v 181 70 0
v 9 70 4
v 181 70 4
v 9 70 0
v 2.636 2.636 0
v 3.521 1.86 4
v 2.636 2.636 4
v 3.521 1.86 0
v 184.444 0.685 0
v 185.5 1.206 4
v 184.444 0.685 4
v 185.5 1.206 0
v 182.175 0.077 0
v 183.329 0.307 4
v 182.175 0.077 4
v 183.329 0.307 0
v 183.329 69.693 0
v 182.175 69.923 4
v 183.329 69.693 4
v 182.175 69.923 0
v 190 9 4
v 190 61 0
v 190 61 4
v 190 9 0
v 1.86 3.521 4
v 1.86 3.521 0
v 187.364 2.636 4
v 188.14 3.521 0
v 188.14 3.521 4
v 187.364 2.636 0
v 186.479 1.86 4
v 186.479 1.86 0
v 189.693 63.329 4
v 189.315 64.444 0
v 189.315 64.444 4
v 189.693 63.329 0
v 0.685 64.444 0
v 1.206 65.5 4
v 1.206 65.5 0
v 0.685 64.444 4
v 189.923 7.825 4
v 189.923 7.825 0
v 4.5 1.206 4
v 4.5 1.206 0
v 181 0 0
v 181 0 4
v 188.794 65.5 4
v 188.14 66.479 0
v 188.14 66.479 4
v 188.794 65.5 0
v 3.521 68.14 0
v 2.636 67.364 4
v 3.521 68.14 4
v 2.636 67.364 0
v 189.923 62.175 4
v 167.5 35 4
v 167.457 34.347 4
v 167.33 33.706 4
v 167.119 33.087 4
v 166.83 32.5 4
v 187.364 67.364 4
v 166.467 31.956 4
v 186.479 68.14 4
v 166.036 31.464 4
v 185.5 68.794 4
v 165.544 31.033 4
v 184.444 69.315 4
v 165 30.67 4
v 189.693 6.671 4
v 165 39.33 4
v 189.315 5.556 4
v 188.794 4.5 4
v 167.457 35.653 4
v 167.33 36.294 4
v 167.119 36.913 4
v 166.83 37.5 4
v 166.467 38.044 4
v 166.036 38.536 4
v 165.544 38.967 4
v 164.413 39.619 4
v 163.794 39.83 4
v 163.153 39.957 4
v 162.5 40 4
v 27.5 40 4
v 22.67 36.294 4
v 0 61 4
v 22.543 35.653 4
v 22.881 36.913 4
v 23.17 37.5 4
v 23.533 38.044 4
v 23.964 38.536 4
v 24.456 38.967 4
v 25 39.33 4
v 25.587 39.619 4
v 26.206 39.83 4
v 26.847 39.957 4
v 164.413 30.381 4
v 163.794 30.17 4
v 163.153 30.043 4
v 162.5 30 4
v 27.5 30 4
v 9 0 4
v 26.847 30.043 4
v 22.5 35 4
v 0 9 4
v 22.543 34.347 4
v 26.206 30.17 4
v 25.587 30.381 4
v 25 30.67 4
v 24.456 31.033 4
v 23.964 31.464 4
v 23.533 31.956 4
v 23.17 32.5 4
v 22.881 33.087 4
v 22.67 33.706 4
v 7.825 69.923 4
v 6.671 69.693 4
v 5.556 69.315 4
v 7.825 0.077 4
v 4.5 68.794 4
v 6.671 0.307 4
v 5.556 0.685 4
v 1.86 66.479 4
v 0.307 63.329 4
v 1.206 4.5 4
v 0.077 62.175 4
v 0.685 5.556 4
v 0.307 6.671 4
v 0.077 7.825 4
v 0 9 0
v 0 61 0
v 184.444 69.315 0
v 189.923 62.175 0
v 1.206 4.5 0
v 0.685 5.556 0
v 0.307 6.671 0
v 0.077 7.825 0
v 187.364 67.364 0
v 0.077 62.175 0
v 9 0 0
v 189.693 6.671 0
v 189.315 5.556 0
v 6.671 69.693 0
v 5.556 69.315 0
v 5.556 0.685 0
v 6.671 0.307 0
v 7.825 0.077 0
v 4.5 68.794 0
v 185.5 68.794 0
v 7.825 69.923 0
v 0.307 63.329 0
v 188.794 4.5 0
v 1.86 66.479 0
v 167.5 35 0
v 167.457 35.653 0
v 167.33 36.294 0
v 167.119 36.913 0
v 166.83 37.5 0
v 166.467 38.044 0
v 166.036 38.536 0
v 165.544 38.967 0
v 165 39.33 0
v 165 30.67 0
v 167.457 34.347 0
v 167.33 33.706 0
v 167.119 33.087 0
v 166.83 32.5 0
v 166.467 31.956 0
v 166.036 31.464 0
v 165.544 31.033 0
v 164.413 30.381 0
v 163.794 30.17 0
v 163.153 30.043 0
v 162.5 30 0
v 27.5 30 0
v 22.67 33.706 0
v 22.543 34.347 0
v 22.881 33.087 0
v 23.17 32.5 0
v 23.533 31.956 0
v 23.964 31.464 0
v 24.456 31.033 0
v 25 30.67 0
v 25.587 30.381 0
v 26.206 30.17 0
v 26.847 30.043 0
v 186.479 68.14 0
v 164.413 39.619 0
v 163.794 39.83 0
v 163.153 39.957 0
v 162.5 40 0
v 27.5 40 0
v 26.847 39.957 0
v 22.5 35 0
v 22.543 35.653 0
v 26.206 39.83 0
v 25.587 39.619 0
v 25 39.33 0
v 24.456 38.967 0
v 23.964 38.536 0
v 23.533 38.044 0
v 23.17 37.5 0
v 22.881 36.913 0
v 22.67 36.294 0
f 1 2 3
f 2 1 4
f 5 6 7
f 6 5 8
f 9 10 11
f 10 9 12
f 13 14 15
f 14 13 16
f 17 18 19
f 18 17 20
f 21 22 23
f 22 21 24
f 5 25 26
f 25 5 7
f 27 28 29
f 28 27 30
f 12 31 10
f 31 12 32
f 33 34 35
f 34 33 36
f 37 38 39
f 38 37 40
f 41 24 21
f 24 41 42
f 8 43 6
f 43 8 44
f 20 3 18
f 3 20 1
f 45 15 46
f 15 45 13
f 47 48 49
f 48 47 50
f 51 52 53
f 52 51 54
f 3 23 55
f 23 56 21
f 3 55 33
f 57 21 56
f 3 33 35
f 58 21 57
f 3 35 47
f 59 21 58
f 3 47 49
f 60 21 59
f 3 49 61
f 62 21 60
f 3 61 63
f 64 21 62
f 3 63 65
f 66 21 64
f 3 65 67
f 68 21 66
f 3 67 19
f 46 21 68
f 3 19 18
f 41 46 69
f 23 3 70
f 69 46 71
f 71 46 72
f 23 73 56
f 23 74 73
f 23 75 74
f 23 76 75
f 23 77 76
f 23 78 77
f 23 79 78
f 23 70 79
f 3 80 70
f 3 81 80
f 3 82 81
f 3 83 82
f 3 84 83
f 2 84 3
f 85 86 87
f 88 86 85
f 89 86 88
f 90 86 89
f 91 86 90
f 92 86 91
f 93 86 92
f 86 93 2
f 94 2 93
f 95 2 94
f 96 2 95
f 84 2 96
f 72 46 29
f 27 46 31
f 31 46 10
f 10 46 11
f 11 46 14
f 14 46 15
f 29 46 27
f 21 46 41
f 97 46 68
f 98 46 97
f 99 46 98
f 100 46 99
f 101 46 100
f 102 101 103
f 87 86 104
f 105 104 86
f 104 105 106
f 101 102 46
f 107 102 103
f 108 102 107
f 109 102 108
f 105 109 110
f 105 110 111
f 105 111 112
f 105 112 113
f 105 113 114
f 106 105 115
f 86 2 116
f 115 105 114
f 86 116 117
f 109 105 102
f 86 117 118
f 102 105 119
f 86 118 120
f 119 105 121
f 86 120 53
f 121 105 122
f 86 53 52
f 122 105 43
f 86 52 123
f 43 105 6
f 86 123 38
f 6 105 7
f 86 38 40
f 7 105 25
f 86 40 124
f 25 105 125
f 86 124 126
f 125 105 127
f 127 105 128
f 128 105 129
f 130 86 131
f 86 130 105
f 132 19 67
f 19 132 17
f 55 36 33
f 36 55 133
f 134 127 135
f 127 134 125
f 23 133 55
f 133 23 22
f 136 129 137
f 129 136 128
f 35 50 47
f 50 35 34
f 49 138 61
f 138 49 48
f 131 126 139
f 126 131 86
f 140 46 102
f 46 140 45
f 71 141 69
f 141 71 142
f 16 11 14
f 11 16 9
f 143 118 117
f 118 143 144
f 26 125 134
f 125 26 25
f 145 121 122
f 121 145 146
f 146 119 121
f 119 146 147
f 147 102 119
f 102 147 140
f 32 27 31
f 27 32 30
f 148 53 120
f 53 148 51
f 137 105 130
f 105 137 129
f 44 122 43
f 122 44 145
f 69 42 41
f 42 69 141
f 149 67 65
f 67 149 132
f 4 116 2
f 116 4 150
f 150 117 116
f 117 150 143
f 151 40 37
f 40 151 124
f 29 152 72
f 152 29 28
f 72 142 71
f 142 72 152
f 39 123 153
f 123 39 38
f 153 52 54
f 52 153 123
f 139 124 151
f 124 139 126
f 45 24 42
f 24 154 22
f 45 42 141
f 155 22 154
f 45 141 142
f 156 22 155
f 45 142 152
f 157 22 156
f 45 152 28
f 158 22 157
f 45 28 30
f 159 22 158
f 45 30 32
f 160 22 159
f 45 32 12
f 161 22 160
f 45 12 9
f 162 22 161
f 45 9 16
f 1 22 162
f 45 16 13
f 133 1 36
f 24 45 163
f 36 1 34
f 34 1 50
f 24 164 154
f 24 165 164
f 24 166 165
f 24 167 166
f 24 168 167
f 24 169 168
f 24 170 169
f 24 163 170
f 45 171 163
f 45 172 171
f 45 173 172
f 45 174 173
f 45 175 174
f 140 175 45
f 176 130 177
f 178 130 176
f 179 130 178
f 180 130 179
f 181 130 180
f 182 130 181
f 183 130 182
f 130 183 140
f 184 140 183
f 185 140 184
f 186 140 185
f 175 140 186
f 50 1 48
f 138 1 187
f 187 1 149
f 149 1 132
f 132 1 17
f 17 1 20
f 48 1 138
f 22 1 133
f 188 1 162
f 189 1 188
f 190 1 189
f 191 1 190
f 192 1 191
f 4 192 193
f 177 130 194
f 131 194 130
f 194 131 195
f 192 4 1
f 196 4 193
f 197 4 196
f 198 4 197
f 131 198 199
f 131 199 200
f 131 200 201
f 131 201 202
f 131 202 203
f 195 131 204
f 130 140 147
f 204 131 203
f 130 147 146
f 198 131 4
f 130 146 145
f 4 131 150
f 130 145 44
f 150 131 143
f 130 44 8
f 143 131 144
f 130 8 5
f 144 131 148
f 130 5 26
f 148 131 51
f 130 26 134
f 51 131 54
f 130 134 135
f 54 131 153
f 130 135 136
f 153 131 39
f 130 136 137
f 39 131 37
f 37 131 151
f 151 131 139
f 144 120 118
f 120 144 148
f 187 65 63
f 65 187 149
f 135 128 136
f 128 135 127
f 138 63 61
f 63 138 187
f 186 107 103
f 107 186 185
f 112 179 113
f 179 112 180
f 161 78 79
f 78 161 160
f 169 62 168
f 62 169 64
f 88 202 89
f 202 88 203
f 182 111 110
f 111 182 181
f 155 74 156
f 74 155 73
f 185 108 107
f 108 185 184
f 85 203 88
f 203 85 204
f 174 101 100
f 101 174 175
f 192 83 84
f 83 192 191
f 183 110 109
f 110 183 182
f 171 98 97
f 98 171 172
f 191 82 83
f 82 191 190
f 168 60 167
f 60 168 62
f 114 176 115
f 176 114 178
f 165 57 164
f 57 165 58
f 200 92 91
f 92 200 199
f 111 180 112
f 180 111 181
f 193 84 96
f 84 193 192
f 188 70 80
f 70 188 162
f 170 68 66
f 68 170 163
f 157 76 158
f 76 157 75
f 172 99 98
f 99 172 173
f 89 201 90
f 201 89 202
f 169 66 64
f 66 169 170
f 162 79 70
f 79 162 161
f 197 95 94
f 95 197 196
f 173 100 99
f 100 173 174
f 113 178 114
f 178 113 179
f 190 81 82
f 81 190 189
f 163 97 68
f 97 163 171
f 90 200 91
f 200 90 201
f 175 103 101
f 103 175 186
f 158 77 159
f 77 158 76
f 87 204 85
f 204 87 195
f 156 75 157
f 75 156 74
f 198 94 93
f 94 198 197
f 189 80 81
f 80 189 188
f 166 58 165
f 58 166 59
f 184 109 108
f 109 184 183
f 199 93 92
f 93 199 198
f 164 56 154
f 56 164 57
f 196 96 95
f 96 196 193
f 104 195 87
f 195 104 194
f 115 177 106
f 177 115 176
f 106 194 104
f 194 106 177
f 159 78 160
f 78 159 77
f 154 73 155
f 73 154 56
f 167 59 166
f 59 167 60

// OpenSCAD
// REFERENCE top bezel for fit/visualization only.
$fn=48;
W=190; D=70; T=4; R=9; slot_w=145; slot_h=10;
module rr(w,d,h,r){ hull(){for(x=[r,w-r])for(y=[r,d-r])translate([x,y,0])cylinder(h=h,r=r);} }
difference(){ rr(W,D,T,R); translate([(W-slot_w)/2,(D-slot_h)/2,-1]) rr(slot_w,slot_h,T+2,slot_h/2); }
